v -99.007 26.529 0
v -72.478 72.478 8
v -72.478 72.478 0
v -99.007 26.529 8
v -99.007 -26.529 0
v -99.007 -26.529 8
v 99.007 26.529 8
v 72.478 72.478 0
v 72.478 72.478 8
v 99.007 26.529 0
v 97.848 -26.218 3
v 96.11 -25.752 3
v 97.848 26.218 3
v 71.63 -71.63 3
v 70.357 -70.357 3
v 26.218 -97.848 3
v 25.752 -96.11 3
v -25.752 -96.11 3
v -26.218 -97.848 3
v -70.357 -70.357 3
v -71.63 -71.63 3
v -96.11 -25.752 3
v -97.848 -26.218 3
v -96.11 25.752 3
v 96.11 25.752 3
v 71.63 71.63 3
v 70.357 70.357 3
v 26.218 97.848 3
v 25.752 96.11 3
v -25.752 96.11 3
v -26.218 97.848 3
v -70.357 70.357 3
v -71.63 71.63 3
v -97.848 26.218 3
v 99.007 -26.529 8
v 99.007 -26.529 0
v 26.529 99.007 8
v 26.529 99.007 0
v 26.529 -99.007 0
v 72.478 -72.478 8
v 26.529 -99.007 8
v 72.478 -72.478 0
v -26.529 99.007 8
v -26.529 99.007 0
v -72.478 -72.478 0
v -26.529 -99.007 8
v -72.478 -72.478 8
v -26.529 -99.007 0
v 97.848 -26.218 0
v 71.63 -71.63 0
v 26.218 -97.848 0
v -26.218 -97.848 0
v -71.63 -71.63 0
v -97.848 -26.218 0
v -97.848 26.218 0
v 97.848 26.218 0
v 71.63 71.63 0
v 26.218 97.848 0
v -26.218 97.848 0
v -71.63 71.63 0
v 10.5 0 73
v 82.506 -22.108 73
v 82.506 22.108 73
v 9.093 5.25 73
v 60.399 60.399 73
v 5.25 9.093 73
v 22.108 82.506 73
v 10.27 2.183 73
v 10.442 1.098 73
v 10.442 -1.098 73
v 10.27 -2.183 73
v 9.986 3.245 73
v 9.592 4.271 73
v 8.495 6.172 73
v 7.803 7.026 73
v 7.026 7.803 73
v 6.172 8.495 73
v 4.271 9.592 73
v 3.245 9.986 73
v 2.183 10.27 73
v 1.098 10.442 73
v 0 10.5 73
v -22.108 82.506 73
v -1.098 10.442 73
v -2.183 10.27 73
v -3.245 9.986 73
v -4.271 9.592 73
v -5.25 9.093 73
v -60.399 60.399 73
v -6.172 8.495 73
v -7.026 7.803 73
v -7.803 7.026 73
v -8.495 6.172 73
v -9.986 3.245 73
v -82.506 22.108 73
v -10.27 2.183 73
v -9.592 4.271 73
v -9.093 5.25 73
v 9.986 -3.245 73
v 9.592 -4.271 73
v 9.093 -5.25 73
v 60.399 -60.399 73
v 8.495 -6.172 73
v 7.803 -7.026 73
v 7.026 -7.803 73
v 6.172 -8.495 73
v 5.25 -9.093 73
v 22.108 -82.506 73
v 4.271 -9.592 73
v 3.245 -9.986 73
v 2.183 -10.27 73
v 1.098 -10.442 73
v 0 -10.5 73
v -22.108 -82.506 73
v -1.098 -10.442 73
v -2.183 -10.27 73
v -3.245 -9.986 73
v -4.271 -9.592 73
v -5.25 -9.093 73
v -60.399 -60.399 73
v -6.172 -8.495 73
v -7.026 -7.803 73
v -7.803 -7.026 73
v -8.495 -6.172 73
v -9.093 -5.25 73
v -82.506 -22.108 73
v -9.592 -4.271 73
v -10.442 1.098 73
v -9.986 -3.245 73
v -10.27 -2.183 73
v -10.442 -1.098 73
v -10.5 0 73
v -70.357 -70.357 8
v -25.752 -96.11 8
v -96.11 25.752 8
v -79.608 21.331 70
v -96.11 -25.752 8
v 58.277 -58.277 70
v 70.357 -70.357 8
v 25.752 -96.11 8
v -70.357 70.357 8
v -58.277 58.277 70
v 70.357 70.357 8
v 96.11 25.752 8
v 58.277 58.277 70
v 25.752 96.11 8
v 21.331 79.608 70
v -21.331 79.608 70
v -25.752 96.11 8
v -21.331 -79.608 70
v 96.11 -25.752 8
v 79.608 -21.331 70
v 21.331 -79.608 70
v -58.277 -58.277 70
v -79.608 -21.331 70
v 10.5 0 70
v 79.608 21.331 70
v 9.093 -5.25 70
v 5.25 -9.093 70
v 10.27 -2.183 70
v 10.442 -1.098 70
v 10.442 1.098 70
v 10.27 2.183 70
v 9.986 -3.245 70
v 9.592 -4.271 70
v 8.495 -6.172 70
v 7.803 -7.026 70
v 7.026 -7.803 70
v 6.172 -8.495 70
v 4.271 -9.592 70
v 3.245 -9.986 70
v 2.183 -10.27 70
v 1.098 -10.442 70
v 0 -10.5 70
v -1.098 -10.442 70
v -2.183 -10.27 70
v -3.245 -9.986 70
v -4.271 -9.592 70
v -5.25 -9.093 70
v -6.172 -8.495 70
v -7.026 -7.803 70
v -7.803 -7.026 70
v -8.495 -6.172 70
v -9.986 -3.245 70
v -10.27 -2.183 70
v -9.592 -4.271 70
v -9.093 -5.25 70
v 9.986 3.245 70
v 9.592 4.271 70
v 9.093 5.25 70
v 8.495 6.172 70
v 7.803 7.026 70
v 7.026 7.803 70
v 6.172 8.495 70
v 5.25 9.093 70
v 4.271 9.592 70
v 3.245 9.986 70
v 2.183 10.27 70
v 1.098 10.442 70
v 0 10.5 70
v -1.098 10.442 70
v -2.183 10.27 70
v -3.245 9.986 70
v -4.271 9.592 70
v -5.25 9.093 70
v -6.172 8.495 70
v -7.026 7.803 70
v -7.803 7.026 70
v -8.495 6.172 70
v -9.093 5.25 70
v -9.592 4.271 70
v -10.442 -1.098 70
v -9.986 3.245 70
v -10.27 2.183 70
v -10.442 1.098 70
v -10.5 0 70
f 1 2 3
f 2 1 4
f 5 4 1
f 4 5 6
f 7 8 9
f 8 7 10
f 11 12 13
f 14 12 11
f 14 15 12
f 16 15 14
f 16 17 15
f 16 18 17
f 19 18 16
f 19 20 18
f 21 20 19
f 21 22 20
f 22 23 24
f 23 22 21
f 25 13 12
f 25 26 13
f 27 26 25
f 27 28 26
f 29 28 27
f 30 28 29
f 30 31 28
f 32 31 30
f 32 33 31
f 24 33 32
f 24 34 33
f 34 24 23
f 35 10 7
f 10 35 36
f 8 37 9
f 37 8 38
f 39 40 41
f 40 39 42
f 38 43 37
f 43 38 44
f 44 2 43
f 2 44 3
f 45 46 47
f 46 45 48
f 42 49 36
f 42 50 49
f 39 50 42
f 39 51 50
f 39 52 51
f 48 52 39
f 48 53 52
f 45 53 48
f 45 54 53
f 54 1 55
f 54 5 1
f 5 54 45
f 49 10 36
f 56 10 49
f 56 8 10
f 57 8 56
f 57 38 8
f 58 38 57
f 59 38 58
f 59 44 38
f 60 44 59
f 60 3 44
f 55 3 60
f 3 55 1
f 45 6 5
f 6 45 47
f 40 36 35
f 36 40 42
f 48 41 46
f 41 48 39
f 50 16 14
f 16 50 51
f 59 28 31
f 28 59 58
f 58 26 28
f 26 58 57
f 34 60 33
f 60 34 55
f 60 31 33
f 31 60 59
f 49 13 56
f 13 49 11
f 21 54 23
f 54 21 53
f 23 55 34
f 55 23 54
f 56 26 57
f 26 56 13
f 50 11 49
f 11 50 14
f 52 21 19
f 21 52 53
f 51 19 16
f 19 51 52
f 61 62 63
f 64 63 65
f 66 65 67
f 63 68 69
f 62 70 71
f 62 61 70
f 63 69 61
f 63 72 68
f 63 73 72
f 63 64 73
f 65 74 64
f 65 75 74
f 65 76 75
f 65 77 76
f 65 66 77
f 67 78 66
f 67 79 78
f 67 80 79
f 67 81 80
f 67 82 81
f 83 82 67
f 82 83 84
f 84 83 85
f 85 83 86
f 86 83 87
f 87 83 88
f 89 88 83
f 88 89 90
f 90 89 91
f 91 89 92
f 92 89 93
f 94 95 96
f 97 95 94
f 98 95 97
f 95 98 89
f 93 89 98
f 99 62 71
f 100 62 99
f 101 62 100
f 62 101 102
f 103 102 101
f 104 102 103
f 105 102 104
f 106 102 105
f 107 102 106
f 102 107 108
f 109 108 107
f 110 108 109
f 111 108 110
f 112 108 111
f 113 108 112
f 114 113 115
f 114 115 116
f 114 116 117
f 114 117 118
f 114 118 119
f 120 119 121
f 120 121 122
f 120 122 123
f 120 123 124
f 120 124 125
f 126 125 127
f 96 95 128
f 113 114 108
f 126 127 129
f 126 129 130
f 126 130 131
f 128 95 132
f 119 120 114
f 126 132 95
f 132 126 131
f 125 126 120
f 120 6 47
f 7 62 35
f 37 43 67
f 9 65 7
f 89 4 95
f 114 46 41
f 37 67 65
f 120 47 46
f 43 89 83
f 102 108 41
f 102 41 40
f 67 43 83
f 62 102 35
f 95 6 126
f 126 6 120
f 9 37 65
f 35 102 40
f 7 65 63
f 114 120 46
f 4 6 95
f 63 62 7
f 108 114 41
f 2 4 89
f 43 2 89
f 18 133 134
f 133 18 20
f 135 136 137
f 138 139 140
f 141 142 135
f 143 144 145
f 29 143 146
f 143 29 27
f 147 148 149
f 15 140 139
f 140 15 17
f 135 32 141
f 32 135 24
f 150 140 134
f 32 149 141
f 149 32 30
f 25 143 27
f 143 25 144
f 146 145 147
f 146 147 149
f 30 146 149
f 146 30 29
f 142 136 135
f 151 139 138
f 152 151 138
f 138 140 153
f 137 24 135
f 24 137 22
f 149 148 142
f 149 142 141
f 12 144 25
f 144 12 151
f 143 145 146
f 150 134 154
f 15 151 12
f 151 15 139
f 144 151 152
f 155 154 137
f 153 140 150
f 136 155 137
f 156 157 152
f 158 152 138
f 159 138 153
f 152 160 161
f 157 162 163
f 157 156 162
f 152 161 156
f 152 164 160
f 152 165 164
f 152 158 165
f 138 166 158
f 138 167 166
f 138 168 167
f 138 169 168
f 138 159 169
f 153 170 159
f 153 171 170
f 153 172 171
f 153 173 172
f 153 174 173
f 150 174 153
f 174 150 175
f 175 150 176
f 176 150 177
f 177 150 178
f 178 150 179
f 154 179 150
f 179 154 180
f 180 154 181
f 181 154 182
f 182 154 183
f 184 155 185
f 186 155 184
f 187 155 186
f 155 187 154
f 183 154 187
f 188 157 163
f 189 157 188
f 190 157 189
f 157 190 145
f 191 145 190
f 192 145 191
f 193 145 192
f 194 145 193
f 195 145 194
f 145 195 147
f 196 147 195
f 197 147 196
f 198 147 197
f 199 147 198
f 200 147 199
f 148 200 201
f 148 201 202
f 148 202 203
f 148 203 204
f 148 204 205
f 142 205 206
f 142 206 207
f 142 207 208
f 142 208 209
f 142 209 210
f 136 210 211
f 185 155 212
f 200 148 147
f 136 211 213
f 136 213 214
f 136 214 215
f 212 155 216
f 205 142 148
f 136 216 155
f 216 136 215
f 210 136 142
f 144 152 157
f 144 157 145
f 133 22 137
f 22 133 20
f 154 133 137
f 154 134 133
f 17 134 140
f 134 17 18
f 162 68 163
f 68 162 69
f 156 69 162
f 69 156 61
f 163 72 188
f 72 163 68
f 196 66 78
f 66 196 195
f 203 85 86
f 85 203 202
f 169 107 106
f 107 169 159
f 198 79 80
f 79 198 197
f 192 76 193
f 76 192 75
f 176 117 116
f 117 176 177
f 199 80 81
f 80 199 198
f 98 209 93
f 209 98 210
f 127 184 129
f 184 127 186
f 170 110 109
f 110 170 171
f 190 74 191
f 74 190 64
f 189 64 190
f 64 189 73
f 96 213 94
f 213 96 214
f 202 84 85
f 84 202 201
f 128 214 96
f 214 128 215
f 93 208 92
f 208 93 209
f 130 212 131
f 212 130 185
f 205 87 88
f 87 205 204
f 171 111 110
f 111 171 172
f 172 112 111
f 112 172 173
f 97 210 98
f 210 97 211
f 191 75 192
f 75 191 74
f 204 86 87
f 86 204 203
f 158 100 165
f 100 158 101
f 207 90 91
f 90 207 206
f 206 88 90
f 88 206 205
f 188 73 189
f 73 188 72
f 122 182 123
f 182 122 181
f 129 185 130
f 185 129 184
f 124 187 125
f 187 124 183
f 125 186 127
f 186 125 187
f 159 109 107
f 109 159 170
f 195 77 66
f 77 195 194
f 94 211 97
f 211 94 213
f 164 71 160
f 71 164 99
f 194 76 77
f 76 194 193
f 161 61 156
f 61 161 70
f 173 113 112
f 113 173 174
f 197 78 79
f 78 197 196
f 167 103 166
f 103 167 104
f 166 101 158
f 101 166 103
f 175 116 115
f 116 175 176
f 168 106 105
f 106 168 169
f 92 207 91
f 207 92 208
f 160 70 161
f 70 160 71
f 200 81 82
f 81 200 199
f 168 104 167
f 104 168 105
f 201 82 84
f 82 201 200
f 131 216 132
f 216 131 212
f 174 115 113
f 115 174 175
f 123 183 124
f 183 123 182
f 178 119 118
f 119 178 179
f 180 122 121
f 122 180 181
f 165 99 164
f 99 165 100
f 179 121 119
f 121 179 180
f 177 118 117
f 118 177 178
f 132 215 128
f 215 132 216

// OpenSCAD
// file: ../library/regular_shapes.scad
/*
 *  OpenSCAD Shapes Library (www.openscad.org)
 *  Copyright (C) 2010-2011  Giles Bathgate, Elmo Mäntynen
 *
 *  This program is free software; you can redistribute it and/or modify
 *  it under the terms of the GNU General Public License as published by
 *  the Free Software Foundation; either version 3 of the License,
 *  LGPL version 2.1, or (at your option) any later version of the GPL.
 *
 *  This program is distributed in the hope that it will be useful,
 *  but WITHOUT ANY WARRANTY; without even the implied warranty of
 *  MERCHANTABILITY or FITNESS FOR A PARTICULAR PURPOSE.  See the
 *  GNU General Public License for more details.
 *
 *  You should have received a copy of the GNU General Public License
 *  along with this program; if not, write to the Free Software
 *  Foundation, Inc., 51 Franklin Street, Fifth Floor, Boston, MA 02110-1301 USA
 *
*/

// 2D regular shapes

module triangle(radius)
{
  o=radius/2;		//equivalent to radius*sin(30)
  a=radius*sqrt(3)/2;	//equivalent to radius*cos(30)
  polygon(points=[[-a,-o],[0,radius],[a,-o]],paths=[[0,1,2]]);
}

module reg_polygon(sides, radius) {
  echo("<font color='red'>
        DEPRECATED: function 'reg_polygon' is now deprecated
        please use 'regular_polygon' instead</font>");

     regular_polygon(sides, radius);
}

module regular_polygon(sides, radius)
{
  function dia(r) = sqrt(pow(r*2,2)/2);  //sqrt((r*2^2)/2) if only we had an exponention op
  if(sides<2) square([radius,0]);
  if(sides==3) triangle(radius);
  if(sides==4) square([dia(radius),dia(radius)],center=true);
  if(sides>4) {
    angles=[ for (i = [0:sides-1]) i*(360/sides) ];
    coords=[ for (th=angles) [radius*cos(th), radius*sin(th)] ];
    polygon(coords);
  }
}

module pentagon(radius)
{
  regular_polygon(5,radius);
}

module hexagon(radius, diameter, across_flats)
{
  r = across_flats ? across_flats/2/cos(30) : diameter ? diameter/2 : radius;
  regular_polygon(6,r);
}

module heptagon(radius)
{
  regular_polygon(7,radius);
}

module octagon(radius)
{
  regular_polygon(8,radius);
}

module nonagon(radius)
{
  regular_polygon(9,radius);
}

module decagon(radius)
{
  regular_polygon(10,radius);
}

module hendecagon(radius)
{
  regular_polygon(11,radius);
}

module dodecagon(radius)
{
  regular_polygon(12,radius);
}

module ring(inside_diameter, thickness){
  difference(){
    circle(r=(inside_diameter+thickness*2)/2);
    circle(r=inside_diameter/2);
  }
}

module ellipse(width, height) {
  scale([1, height/width, 1]) circle(r=width/2);
}

// The ratio of length and width is about 1.39 for a real egg
module egg_outline(width, length){
    translate([0, width/2, 0]) union(){
        rotate([0, 0, 180]) difference(){
            ellipse(width, 2*length-width);
            translate([-length/2, 0, 0]) square(length);
        }
        circle(r=width/2);
    }
}

//3D regular shapes

module cone(height, radius, center = false)
{
  cylinder(height, radius, 0, center);
}

module oval_prism(height, rx, ry, center = false)
{
  scale([1, rx/ry, 1]) cylinder(h=height, r=ry, center=center);
}

module oval_tube(height, rx, ry, wall, center = false)
{
  difference() {
    scale([1, ry/rx, 1]) cylinder(h=height, r=rx, center=center);
    translate([0,0,-height/2]) scale([(rx-wall)/rx, (ry-wall)/rx, 2]) cylinder(h=height, r=rx, center=center);
  }
}

module cylinder_tube(height, radius, wall, center = false)
{
    tubify(radius,wall)
    cylinder(h=height, r=radius, center=center);
}

//Tubifies any regular prism
module tubify(radius,wall)
{
  difference()
  {
    children(0);
    translate([0, 0, -0.1]) scale([(radius-wall)/radius, (radius-wall)/radius, 2]) children(0);
  }
}

module triangle_prism(height,radius)
{
  linear_extrude(height=height) triangle(radius);
}

module triangle_tube(height,radius,wall)
{
   tubify(radius,wall) triangle_prism(height,radius);
}

module pentagon_prism(height,radius)
{
  linear_extrude(height=height) pentagon(radius);
}

module pentagon_tube(height,radius,wall)
{
 tubify(radius,wall) pentagon_prism(height,radius);
}

module hexagon_prism(height, radius, across_flats)
{
  linear_extrude(height=height)
    hexagon(radius=radius, across_flats=across_flats);
}

module hexagon_tube(height,radius,wall)
{
 tubify(radius,wall) hexagon_prism(height,radius);
}

module heptagon_prism(height,radius)
{
  linear_extrude(height=height) heptagon(radius);
}

module heptagon_tube(height,radius,wall)
{
 tubify(radius,wall) heptagon_prism(height,radius);
}

module octagon_prism(height,radius)
{
  linear_extrude(height=height) octagon(radius);
}

module octagon_tube(height,radius,wall)
{
 tubify(radius,wall) octagon_prism(height,radius);
}

module nonagon_prism(height,radius)
{
  linear_extrude(height=height) nonagon(radius);
}

module decagon_prism(height,radius)
{
  linear_extrude(height=height) decagon(radius);
}

module hendecagon_prism(height,radius)
{
  linear_extrude(height=height) hendecagon(radius);
}

module dodecagon_prism(height,radius)
{
  linear_extrude(height=height) dodecagon(radius);
}

module torus(outerRadius, innerRadius)
{
  r=(outerRadius-innerRadius)/2;
  rotate_extrude() translate([innerRadius+r,0,0]) circle(r);
}

module torus2(r1, r2)
{
  rotate_extrude() translate([r1,0,0]) circle(r2);
}

module oval_torus(inner_radius, thickness=[0, 0])
{
  rotate_extrude() translate([inner_radius+thickness[0]/2,0,0]) ellipse(width=thickness[0], height=thickness[1]);
}


module triangle_pyramid(radius)
{
  o=radius/2;		//equivalent to radius*sin(30)
  a=radius*sqrt(3)/2;	//equivalent to radius*cos(30)
  polyhedron(points=[[-a,-o,-o],[a,-o,-o],[0,radius,-o],[0,0,radius]],triangles=[[0,1,2],[1,2,3],[0,1,3],[0,2,3]]);
}

module square_pyramid(base_x, base_y,height)
{
  w=base_x/2;
  h=base_y/2;
  polyhedron(points=[[-w,-h,0],[-w,h,0],[w,h,0],[w,-h,0],[0,0,height]],triangles=[[0,3,2,1], [0,1,4], [1,2,4], [2,3,4], [3,0,4]]);
}

module egg(width, length){
    rotate_extrude()
        difference(){
            egg_outline(width, length);
            translate([-length, 0, 0]) cube(2*length, center=true);
        }
}

// Tests:

//test_square_pyramid(){square_pyramid(10, 20, 30);}
// main file
include <../library/regular_shapes.scad>

$fn=60;

module dodecagon_rotated(radius, rotation=15)
{
    rotate([0, 0, rotation])
    dodecagon(radius);
}

module dodecagon_prism_rotated(height, radius, rotation=15)
{
    rotate([0, 0, rotation])
    dodecagon_prism(height, radius);
}

module tarot_680_base_plate_void_holes(void_thickness)
{
    // holes around the center for side arms
    for ( x_offset = [-92, -36, 36, 92] )
    {
        for ( y_offset = [-11, 11] )
        {
            translate([x_offset, y_offset, 0])
            cylinder(d=7, h=void_thickness);
        }
    }
    
    for ( x_offset = [-21, 21] )
    {
        for ( y_offset = [-36.5, 36.5] )
        {
            translate([x_offset, y_offset, 0])
            cylinder(d=7, h=void_thickness);
        }
    }
    
    for ( x_offset = [-81, 81] )
    {
        for ( y_offset = [-29.25, -20.25, 20.25, 29.25] )
        {
            translate([x_offset, y_offset, 0])
            cylinder(d=7, h=void_thickness);
        }
    }
    
    for ( x_offset = [-30, 30] )
    {
        for ( y_offset = [-88.5, 88.5] )
        {
            translate([x_offset, y_offset, 0])
            cylinder(d=7, h=void_thickness);
        }
    }
    
        for ( x_offset = [-38, 38] )
    {
        for ( y_offset = [-84, 84] )
        {
            translate([x_offset, y_offset, 0])
            cylinder(d=7, h=void_thickness);
        }
    }
}

module tarot_680_base_plate_screw_holes(void_thickness)
{
    for ( x_offset = [-37, -23, 23, 37] )
    {
        for ( y_offset = [-73, 73] )
        {
            translate([x_offset, y_offset, 0])
            cylinder(d=4, h=void_thickness);
        }
    }
    
    for ( x_offset = [-74, 74] )
    {
        for ( y_offset = [-11, 11] )
        {
            translate([x_offset, y_offset, 0])
            cylinder(d=4, h=void_thickness);
        }
    }
}

module base_plate( thickness=3.5, bottom_thickness=2, radius=198/2, wall_height=15, wall_thickness=3, edge_thickness=1.5, edge_height=1.5 )
{
    difference()
    {
        union()
        {
            // bottom base
            difference()
            {
                dodecagon_prism_rotated(height=bottom_thickness, radius=radius);
                tarot_680_base_plate_void_holes(thickness);
            }
            
            // top base
            translate([0, 0, bottom_thickness])
            dodecagon_prism_rotated(height=thickness-bottom_thickness, radius=radius);
            
            // wall
            translate([0, 0, thickness])
            difference()
            {
                dodecagon_prism_rotated(height=wall_height, radius=radius);
                dodecagon_prism_rotated(height=wall_height, radius=radius-wall_thickness);
            }
            
            // edge
            translate([0, 0, thickness+wall_height])
            difference()
            {
                dodecagon_prism_rotated(height=edge_height, radius=radius-wall_thickness+edge_thickness);
                dodecagon_prism_rotated(height=edge_height, radius=radius-wall_thickness);
            }
        }
        union()
        {
            tarot_680_base_plate_screw_holes(thickness);
            
            cylinder(d=15, h=thickness);
        }
    }
}

//module top(radius=198/2, height=70, wall_thickness=3, wall_height=5, edge_thickness=1.5, edge_height=1.5 )
//{
//    // edge
//    difference()
//    {
//        dodecagon_prism_rotated(height=edge_height, radius=radius);
//        dodecagon_prism_rotated(height=edge_height, radius=radius-(wall_thickness-edge_thickness));
//    }
//    
//    // wall
//    translate([0, 0, edge_height])
//    difference()
//    {
//        dodecagon_prism_rotated(height=wall_height, radius=radius);
//        dodecagon_prism_rotated(height=wall_height, radius=radius-wall_thickness);
//    }
//}

module top(radius=205/2, height=70, wall_thickness=3, wall_height=5, edge_thickness=1.8    , edge_height=3 )
{
    difference()
    {
        union()
        {
            // edge
            difference()
            {
                dodecagon_prism_rotated(height=edge_height, radius=radius);
                dodecagon_prism_rotated(height=edge_height, radius=radius-(wall_thickness-edge_thickness));
            }
            
            // main canopy
            difference()
            {
                hull()
                {
                    // wall
                    translate([0, 0, edge_height])
                    dodecagon_prism_rotated(height=wall_height, radius=radius);
                    
                    translate([0, 0, edge_height - wall_height + 70])
                    dodecagon_prism_rotated(height=wall_height, radius=radius/1.2);
                }
                
                        hull()
                {
                    // wall
                    translate([0, 0, edge_height])
                    dodecagon_prism_rotated(height=wall_height, radius=radius-wall_thickness);
                    
                    translate([0, 0, edge_height - wall_height + 70])
                    dodecagon_prism_rotated(height=wall_height-wall_thickness, radius=(radius/1.2)-wall_thickness);
                }
            }
        }
        union()
        {
            translate([0, 0, edge_height - wall_thickness + 70])
            cylinder(d=21, h=wall_thickness);
        }
    }
}

//base_plate();
//
//translate([0, 0, 50])
top();
